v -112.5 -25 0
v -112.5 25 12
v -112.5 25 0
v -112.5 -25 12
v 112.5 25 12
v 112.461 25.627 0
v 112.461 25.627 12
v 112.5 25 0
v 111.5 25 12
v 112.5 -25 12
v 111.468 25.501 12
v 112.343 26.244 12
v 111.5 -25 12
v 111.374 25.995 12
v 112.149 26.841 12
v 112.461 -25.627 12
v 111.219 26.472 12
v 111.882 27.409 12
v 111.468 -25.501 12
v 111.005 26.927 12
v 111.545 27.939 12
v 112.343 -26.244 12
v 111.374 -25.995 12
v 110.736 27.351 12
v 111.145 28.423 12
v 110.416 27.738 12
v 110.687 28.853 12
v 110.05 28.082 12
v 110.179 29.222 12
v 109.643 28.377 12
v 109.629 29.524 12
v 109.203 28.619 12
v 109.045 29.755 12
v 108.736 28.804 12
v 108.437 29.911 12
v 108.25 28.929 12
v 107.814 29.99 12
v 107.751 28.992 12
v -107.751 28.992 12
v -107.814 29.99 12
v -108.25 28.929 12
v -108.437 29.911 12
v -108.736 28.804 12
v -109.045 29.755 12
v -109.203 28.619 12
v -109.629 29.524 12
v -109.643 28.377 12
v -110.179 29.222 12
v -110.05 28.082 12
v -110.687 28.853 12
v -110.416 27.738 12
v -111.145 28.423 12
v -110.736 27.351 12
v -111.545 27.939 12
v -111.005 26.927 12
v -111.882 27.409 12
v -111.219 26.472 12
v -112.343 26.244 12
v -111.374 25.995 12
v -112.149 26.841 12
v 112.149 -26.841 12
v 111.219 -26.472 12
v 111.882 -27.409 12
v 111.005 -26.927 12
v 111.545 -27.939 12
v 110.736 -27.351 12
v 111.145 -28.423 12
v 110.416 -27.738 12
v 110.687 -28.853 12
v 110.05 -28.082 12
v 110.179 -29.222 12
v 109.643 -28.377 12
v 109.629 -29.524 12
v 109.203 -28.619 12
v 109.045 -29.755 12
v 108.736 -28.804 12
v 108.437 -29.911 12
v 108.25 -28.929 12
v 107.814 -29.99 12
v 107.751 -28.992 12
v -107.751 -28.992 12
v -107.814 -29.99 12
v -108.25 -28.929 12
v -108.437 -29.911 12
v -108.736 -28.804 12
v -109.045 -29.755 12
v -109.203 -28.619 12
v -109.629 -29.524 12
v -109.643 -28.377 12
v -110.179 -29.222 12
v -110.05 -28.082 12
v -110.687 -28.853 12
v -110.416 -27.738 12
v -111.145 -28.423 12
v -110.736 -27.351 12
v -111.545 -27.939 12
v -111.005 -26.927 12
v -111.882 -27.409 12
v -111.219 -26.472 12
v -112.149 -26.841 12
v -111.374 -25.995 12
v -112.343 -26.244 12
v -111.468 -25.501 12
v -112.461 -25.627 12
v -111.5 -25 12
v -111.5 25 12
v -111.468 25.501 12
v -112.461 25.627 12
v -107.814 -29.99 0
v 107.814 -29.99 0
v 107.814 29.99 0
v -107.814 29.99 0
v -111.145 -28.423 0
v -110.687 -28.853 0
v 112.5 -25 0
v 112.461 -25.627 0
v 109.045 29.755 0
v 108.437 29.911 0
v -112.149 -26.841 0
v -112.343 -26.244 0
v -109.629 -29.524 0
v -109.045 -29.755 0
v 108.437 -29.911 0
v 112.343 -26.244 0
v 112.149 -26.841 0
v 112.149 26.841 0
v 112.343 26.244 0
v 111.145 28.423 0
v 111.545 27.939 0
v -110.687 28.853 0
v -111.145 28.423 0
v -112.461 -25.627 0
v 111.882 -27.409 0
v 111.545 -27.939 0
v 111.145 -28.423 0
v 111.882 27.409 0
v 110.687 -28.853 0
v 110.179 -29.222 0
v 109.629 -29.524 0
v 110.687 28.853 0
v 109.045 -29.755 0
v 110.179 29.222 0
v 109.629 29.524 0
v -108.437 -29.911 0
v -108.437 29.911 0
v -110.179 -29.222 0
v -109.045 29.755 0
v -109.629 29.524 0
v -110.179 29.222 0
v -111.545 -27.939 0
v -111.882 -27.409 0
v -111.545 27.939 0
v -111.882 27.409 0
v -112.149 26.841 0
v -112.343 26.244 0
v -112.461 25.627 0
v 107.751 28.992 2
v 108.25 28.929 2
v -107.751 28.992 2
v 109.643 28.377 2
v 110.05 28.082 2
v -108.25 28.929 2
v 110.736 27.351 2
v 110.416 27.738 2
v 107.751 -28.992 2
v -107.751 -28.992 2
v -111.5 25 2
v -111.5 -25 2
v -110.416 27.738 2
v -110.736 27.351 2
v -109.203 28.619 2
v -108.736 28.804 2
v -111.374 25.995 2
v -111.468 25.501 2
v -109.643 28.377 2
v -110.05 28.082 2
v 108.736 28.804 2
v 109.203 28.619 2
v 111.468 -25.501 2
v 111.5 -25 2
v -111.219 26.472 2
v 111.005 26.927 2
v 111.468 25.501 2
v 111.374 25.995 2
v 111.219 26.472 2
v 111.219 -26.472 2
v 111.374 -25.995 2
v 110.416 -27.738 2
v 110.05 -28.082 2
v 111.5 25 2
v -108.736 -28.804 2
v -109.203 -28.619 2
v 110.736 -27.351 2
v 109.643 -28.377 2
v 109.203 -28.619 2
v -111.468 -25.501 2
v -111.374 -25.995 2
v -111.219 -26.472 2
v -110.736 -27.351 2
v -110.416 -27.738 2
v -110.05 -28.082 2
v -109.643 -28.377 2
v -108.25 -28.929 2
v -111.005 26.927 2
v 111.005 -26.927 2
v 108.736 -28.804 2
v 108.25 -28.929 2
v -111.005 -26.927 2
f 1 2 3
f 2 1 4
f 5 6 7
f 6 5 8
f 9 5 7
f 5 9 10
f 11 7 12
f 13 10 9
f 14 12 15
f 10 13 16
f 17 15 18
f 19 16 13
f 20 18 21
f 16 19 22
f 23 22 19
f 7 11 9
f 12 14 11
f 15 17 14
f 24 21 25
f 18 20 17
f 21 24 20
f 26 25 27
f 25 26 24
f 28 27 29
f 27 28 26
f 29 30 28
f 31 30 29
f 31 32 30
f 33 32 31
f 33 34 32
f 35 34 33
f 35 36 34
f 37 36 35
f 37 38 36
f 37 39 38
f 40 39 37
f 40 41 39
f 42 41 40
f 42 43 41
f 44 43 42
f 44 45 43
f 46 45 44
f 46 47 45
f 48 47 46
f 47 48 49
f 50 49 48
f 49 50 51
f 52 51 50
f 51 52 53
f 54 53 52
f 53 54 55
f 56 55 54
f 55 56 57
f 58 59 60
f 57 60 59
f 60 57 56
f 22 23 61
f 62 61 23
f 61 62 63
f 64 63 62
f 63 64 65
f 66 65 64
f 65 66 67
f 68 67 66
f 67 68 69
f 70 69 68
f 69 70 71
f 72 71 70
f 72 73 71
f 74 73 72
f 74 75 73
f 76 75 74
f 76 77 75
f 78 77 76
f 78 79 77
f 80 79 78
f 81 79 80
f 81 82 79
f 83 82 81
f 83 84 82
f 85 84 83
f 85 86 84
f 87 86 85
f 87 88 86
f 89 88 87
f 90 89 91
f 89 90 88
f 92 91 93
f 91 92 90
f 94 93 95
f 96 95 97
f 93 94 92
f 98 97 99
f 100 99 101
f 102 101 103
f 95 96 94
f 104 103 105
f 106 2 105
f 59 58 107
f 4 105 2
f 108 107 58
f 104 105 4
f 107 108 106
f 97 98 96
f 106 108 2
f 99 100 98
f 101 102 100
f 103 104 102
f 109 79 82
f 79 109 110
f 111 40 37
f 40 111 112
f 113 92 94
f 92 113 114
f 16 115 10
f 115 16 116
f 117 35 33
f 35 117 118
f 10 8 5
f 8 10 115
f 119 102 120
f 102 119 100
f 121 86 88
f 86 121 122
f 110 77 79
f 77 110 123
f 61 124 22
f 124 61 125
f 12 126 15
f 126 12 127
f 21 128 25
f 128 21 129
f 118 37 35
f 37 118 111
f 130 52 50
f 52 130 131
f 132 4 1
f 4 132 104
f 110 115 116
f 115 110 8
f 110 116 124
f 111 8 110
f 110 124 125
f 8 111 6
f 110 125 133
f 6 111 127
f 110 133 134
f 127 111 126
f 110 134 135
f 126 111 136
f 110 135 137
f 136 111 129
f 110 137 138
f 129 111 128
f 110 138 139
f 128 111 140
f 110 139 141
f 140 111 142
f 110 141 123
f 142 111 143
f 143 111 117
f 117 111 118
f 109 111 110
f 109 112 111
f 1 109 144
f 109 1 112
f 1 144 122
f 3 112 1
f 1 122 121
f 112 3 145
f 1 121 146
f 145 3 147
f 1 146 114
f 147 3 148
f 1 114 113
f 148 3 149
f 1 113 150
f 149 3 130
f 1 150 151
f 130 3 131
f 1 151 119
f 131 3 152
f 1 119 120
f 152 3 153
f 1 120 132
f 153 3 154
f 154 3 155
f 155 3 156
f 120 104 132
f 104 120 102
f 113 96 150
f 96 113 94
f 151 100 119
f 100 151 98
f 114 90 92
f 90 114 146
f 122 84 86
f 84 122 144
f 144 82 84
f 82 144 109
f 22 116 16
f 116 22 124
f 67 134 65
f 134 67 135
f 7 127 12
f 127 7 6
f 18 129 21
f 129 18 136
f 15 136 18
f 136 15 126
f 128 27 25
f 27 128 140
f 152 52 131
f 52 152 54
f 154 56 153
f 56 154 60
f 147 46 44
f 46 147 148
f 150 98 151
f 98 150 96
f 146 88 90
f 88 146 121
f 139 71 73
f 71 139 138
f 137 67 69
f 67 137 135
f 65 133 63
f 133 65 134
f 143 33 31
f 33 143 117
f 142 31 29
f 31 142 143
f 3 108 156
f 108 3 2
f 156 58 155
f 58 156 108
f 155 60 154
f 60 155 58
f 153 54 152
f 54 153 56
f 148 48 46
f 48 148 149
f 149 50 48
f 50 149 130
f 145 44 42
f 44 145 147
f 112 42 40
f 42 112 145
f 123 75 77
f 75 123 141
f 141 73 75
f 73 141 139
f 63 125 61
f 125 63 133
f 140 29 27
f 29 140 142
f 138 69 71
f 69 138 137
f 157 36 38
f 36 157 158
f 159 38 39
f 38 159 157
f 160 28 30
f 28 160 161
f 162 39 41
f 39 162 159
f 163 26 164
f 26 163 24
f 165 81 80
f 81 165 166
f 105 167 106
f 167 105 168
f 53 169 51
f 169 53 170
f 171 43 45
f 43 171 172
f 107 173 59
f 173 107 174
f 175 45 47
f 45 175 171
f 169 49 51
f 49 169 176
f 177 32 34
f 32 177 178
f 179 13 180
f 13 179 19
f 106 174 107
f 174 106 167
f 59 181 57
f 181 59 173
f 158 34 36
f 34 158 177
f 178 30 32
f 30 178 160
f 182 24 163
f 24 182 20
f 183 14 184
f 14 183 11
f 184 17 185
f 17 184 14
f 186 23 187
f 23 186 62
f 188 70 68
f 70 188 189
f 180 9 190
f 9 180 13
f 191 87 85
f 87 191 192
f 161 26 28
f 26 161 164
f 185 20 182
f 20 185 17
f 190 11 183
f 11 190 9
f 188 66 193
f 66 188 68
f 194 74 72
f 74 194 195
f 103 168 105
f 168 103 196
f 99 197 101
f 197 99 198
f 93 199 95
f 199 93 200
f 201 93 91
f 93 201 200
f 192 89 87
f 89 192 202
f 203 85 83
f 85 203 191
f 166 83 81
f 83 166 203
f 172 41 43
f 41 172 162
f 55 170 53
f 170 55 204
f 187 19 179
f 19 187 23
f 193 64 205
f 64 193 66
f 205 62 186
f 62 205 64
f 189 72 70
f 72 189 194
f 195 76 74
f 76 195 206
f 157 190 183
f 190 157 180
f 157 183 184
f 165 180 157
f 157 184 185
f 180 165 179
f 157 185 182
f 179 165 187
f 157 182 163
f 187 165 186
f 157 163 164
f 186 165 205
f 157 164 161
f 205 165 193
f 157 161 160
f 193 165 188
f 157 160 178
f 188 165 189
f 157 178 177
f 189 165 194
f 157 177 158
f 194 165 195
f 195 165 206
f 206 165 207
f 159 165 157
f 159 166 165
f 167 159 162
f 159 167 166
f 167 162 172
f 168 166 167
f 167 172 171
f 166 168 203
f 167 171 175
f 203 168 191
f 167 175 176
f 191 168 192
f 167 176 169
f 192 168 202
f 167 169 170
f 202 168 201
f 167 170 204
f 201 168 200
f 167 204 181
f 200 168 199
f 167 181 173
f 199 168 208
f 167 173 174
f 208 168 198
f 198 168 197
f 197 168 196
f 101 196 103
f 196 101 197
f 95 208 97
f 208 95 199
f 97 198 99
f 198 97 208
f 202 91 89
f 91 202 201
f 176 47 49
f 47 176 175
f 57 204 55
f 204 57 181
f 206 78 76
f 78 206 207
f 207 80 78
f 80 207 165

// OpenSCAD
$fn = 50;


difference() {
	union() {
		hull() {
			translate(v = [-107.5000000000, 25.0000000000, 0]) {
				cylinder(h = 12, r = 5);
			}
			translate(v = [107.5000000000, 25.0000000000, 0]) {
				cylinder(h = 12, r = 5);
			}
			translate(v = [-107.5000000000, -25.0000000000, 0]) {
				cylinder(h = 12, r = 5);
			}
			translate(v = [107.5000000000, -25.0000000000, 0]) {
				cylinder(h = 12, r = 5);
			}
		}
	}
	union() {
		translate(v = [0, 0, 2]) {
			hull() {
				translate(v = [-107.5000000000, 25.0000000000, 0]) {
					cylinder(h = 10, r = 4);
				}
				translate(v = [107.5000000000, 25.0000000000, 0]) {
					cylinder(h = 10, r = 4);
				}
				translate(v = [-107.5000000000, -25.0000000000, 0]) {
					cylinder(h = 10, r = 4);
				}
				translate(v = [107.5000000000, -25.0000000000, 0]) {
					cylinder(h = 10, r = 4);
				}
			}
		}
	}
}
